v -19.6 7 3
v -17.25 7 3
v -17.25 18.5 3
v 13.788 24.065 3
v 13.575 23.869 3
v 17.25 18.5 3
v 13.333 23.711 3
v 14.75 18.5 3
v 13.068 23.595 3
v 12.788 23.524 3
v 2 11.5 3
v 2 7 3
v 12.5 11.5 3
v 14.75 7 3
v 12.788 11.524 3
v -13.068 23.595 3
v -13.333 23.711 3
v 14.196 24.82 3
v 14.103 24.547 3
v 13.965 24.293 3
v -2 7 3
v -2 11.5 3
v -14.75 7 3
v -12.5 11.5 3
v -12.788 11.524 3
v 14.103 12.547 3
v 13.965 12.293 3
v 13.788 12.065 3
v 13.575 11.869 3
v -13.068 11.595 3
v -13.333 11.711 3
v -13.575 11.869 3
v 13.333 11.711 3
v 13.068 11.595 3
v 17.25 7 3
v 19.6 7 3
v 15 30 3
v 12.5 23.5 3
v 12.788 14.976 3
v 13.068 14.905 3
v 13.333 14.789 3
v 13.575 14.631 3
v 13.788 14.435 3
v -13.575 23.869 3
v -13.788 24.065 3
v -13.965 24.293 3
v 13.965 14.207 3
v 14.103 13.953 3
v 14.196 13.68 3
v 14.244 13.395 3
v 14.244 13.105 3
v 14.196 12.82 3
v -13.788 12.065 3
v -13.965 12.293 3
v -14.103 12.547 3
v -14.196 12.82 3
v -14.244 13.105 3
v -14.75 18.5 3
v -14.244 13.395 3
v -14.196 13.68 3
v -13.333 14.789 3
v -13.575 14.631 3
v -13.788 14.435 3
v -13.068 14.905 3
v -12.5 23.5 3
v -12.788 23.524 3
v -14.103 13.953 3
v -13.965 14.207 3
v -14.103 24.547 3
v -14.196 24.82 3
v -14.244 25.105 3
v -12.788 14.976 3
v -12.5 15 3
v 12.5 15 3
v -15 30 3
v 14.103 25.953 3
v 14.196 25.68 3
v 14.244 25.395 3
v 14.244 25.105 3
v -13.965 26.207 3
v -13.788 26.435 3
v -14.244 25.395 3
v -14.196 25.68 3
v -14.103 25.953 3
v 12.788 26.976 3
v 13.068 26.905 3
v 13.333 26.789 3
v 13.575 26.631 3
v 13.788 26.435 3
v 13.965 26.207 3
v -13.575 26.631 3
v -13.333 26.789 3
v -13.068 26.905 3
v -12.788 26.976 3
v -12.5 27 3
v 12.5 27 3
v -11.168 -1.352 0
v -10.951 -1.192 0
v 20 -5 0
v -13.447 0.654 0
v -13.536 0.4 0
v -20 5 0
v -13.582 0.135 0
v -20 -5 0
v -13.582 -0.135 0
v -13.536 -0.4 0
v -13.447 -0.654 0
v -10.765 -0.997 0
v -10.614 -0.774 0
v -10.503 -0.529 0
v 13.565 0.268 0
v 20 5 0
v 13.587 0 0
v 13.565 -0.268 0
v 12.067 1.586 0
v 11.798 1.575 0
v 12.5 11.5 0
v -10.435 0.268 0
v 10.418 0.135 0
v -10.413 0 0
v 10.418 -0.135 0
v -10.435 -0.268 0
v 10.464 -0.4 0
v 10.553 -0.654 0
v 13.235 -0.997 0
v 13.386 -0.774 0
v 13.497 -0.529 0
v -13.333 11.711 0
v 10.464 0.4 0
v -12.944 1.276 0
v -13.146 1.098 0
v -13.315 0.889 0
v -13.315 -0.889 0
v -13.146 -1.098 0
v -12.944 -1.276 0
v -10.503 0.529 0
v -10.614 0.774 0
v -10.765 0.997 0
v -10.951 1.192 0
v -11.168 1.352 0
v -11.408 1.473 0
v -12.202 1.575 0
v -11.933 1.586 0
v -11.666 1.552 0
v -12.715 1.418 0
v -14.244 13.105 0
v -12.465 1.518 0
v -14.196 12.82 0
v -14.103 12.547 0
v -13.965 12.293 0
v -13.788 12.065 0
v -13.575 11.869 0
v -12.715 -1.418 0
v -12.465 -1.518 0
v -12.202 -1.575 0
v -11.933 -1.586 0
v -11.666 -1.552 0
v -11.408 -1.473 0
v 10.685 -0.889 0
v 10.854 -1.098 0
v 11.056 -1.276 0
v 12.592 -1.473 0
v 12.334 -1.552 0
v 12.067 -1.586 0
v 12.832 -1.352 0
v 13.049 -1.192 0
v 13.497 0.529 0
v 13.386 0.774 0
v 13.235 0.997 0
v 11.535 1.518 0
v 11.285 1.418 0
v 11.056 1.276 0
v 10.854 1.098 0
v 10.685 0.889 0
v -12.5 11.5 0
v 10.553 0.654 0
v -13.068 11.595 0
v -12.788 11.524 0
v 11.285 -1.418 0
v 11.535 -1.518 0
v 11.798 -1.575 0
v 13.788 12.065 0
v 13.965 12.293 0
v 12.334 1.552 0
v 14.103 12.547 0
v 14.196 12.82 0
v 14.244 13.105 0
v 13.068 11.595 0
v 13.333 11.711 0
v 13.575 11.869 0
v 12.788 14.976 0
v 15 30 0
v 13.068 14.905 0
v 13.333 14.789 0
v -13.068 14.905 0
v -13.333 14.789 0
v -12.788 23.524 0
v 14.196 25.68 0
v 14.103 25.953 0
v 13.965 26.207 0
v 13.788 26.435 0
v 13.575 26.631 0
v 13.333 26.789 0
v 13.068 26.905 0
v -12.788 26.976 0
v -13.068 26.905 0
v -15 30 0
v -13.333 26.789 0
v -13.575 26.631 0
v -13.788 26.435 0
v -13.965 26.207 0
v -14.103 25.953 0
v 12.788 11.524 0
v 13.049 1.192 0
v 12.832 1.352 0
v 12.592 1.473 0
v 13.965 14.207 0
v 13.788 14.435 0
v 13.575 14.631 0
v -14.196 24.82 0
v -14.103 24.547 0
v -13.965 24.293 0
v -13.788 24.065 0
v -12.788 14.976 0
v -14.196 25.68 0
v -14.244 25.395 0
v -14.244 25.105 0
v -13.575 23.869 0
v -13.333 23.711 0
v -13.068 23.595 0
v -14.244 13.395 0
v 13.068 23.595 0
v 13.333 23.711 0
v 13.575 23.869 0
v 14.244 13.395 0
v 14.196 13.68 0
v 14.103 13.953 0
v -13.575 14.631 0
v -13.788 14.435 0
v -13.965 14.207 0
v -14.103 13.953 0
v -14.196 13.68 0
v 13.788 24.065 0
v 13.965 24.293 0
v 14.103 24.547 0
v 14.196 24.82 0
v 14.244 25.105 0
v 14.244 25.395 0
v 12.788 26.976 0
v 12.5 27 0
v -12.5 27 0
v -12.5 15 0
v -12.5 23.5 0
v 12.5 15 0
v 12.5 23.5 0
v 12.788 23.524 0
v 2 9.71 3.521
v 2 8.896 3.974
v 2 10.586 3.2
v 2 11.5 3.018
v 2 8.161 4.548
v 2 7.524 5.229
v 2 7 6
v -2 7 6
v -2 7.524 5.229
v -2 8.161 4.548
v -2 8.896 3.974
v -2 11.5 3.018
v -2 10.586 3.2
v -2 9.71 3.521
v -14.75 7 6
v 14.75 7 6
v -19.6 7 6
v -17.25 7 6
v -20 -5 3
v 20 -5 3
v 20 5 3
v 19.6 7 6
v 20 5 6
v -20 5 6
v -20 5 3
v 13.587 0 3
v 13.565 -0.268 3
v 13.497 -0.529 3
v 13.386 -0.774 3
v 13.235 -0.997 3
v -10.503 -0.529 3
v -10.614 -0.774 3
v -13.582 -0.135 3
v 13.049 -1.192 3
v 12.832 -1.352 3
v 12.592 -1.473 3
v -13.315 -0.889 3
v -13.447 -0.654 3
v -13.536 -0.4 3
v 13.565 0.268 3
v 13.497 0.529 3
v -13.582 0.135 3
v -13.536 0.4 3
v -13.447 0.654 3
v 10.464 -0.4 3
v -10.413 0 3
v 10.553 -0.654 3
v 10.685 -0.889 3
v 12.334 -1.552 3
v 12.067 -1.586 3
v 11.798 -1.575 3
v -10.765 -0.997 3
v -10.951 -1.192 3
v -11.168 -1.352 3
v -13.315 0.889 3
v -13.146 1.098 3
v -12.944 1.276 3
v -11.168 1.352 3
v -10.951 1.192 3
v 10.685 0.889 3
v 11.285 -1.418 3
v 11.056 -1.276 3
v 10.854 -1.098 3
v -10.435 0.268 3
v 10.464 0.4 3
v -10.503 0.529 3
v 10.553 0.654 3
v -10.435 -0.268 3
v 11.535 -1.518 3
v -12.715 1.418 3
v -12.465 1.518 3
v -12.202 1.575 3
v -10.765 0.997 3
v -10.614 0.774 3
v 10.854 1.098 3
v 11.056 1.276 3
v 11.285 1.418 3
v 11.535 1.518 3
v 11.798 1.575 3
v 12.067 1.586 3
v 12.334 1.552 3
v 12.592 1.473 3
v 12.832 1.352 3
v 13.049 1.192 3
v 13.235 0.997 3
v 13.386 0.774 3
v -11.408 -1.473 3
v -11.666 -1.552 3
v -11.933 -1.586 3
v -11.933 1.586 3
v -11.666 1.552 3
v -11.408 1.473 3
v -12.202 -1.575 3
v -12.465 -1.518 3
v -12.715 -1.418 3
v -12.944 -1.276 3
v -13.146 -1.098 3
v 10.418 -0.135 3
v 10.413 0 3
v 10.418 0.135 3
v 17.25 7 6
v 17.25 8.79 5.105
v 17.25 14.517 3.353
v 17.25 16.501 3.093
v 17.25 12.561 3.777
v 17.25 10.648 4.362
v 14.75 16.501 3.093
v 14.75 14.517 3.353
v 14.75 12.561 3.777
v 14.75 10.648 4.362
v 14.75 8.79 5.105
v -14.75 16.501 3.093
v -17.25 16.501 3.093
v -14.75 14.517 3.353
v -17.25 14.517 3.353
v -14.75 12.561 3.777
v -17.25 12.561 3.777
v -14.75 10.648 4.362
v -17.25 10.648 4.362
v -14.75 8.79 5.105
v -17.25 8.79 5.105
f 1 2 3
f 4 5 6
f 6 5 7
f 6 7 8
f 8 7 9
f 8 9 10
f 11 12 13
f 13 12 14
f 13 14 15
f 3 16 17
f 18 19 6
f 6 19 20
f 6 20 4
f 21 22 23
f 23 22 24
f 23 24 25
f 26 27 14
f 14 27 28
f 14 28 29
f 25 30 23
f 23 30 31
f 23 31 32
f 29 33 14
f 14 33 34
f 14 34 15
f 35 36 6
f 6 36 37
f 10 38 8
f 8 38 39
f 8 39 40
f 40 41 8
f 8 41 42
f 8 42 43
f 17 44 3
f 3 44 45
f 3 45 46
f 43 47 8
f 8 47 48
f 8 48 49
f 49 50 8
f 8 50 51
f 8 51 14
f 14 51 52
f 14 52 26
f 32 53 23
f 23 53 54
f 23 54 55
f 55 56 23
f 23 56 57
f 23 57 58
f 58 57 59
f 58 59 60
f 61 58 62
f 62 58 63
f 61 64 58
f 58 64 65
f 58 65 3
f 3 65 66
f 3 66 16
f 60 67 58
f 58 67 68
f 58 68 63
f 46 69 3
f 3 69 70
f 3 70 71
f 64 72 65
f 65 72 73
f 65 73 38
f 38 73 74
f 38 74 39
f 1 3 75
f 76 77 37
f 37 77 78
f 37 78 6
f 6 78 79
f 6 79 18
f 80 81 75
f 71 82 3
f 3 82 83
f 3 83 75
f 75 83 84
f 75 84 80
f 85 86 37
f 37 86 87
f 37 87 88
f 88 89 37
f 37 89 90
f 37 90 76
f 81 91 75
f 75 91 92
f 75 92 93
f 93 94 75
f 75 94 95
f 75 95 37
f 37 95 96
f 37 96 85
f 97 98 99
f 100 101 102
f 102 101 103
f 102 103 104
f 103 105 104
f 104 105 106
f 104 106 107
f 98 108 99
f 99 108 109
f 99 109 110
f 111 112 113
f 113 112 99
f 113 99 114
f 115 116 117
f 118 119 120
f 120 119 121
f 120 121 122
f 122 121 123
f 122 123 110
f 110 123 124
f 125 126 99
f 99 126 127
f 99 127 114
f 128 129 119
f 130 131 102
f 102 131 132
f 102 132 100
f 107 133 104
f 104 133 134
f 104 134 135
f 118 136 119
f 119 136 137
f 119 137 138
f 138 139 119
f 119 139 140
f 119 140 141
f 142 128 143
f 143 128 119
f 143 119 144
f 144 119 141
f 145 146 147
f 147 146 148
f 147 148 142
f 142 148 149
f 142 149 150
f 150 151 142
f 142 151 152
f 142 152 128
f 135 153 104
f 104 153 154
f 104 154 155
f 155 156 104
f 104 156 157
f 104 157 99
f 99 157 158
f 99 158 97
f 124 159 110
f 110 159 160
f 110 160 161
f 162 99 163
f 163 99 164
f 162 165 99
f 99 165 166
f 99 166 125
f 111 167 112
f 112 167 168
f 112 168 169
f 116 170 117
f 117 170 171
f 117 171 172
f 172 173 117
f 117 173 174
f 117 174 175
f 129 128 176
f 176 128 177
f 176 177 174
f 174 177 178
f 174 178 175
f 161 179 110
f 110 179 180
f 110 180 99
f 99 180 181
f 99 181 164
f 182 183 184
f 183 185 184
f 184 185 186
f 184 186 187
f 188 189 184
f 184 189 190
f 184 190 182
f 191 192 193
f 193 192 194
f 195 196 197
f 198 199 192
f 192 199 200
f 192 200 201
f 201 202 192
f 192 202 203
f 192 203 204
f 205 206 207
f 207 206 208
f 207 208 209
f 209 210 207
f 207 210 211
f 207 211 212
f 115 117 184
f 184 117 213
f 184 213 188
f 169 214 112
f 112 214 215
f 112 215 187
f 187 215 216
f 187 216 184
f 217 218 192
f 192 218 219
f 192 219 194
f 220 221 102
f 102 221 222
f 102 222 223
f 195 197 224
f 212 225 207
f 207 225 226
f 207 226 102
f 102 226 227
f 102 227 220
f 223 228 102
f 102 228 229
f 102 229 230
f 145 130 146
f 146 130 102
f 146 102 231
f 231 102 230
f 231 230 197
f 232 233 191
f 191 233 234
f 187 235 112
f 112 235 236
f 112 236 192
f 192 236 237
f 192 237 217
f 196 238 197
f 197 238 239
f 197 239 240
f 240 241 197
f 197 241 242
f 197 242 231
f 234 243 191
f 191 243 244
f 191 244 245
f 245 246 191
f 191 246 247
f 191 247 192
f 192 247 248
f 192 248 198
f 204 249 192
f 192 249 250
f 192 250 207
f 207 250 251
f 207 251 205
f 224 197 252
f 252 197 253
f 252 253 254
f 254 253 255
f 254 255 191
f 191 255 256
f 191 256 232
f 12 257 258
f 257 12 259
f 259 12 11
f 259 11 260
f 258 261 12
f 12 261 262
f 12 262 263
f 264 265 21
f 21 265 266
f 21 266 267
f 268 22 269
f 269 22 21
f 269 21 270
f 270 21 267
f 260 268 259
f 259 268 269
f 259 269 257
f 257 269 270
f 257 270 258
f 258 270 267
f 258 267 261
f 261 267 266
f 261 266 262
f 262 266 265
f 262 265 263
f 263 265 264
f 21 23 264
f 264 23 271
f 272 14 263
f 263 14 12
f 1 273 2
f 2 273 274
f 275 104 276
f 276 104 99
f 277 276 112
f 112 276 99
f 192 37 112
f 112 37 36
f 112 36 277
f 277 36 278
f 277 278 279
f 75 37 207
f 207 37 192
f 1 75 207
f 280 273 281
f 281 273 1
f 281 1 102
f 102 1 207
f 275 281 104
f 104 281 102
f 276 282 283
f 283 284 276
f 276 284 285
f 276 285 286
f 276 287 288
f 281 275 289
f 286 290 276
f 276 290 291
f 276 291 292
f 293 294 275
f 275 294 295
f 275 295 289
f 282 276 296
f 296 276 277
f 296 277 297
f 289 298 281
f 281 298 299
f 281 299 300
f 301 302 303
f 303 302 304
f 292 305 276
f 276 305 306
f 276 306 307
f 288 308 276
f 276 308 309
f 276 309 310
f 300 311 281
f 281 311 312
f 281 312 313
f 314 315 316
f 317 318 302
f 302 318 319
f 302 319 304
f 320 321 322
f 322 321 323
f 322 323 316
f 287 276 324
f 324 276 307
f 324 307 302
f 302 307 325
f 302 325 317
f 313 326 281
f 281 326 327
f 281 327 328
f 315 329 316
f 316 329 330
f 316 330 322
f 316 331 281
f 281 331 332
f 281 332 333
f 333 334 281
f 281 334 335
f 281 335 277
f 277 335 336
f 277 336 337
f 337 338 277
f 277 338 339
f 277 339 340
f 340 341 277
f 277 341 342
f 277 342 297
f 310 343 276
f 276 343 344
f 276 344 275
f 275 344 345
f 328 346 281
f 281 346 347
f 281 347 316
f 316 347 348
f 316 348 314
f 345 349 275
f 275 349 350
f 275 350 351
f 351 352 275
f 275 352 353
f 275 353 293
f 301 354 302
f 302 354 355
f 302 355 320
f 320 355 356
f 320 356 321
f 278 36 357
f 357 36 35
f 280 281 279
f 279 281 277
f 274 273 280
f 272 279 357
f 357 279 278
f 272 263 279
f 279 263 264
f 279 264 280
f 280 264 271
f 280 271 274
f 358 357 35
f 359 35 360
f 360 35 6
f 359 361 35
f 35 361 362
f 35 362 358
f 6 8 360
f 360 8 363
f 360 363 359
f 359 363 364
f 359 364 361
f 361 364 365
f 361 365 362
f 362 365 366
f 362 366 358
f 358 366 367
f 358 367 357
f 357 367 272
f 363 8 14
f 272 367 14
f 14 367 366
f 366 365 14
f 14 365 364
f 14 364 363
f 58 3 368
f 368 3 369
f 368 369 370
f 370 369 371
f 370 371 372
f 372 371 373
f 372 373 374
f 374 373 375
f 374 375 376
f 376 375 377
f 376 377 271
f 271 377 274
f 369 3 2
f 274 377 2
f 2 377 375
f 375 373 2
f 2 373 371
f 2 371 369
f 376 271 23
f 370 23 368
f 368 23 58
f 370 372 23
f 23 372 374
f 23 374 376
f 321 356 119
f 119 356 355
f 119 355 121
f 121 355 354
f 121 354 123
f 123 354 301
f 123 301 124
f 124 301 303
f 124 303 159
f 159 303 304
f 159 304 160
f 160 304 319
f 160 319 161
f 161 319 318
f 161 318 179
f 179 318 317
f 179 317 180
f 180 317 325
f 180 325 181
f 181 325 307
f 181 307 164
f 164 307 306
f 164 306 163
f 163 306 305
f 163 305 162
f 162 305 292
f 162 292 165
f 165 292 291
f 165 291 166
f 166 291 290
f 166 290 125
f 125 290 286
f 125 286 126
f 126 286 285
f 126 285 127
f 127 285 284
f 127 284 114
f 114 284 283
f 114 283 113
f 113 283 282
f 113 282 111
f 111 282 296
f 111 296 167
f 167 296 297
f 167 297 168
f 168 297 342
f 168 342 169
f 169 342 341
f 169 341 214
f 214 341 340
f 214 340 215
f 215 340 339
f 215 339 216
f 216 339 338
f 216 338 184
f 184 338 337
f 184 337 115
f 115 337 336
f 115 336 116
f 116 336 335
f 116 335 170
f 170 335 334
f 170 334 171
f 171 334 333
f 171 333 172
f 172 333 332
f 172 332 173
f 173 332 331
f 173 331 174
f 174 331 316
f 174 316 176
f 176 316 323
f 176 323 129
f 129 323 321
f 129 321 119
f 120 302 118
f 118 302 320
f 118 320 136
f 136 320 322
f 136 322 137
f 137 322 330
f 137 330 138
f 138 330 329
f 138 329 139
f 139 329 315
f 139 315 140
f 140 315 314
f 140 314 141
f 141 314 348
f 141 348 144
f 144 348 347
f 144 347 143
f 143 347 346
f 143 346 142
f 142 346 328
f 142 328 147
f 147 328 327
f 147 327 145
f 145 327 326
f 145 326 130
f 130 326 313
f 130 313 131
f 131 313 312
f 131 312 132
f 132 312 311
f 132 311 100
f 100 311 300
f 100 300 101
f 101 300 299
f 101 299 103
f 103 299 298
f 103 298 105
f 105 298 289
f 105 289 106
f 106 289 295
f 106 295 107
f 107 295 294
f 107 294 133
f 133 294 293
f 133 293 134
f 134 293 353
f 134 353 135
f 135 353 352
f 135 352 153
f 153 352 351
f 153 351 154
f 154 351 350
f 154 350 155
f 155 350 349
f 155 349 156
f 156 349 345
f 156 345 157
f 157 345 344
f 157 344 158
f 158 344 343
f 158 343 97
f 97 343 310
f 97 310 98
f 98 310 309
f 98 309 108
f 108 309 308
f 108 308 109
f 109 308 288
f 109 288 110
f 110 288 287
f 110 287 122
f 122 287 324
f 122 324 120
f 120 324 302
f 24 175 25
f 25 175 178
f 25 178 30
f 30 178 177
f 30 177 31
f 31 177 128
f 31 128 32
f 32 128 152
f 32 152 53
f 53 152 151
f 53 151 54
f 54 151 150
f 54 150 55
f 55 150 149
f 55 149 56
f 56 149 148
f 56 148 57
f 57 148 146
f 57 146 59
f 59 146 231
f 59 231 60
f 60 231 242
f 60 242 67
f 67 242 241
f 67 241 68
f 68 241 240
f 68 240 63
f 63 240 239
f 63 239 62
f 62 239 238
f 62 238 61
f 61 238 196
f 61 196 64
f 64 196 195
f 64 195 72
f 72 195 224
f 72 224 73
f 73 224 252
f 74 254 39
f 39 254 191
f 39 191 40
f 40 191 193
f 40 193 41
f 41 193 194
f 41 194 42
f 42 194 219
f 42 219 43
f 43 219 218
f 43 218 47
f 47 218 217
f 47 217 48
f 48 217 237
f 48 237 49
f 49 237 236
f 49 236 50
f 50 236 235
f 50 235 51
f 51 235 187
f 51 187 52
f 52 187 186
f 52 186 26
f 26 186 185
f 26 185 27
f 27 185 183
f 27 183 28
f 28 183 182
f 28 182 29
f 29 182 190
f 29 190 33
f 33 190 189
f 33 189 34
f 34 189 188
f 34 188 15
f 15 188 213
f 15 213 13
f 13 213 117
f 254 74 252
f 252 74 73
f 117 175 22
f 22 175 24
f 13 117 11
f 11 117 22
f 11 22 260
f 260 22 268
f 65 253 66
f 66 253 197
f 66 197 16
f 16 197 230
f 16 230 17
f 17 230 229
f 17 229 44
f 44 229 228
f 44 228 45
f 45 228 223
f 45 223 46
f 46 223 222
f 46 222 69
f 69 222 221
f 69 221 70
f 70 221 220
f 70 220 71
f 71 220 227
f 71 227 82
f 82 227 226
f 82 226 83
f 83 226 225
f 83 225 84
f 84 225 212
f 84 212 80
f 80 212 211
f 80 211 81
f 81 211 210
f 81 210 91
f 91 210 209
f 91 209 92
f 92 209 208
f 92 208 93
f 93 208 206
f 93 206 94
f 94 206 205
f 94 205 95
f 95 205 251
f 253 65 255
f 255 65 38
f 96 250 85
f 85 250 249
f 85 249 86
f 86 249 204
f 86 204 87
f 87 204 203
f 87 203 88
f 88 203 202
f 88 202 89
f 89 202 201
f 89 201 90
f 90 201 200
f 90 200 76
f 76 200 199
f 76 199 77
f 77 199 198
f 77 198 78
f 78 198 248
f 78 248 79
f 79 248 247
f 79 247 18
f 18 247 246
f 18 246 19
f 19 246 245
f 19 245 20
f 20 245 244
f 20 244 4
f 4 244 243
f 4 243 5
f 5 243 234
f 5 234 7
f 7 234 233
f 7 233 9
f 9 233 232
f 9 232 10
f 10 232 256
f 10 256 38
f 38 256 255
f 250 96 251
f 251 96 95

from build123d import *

# Parameters (mm, degrees)
SALIENTE_EXTRUIR1_DEPTH    = 3
SALIENTE_EXTRUIR2_DEPTH    = 3
NERVIO6_START              = -1.25
NERVIO6_DEPTH              = 2.5
NERVIO7_START              = -2
NERVIO7_DEPTH              = 4
CROQUIS3_R                 = 1.5875
CORTAR_EXTRUIR1_DEPTH      = 12
CORTAR_EXTRUIR2_DEPTH      = 10
CORTAR_EXTRUIR2_DEPTH_BACK = 12


# Read off the part's stored shape, not the designer's step: Nervio6, Nervio7
with BuildPart() as part:
    # Croquis1 → Saliente-Extruir1 (new body)
    with BuildSketch(Plane.XY):
        Polygon((-20, 5), (-20, -5), (20, -5), (20, 5), (0, 5), align=None)
        Polygon((-15, 30), (-20, 5), (0, 5), (0, 30), align=None)
        Polygon((0, 5), (20, 5), (15, 30), (0, 30), align=None)
    extrude(amount=SALIENTE_EXTRUIR1_DEPTH)

    # Croquis2 → Saliente-Extruir2 (add)
    with BuildSketch(Plane.XY.offset(3)):
        Polygon((-19.6, 7), (-20, 5), (20, 5), (19.6, 7), align=None)
    extrude(amount=SALIENTE_EXTRUIR2_DEPTH)

    # Nervio6 outline → Nervio6 (add)
    with BuildSketch(Plane(origin=(16, 0, 0), x_dir=(0, 0, -1), z_dir=(1, 0, 0)).offset(NERVIO6_START)):
        with BuildLine():
            Line((-3, 7), (-3, 18.5))
            ThreePointArc((-3, 18.5), (-3.776888017, 12.561362091), (-6, 7))
            Line((-6, 7), (-3, 7))
        make_face()
    nervio6 = extrude(amount=NERVIO6_DEPTH)

    # Simetría2: Nervio6 across plane
    add(nervio6.mirror(Plane(origin=(0, 0, 0), x_dir=(0, 0, 1), z_dir=(1, 0, 0))))

    # Nervio7 outline → Nervio7 (add)
    with BuildSketch(Plane(origin=(0, 0, 0), x_dir=(0, 0, -1), z_dir=(1, 0, 0)).offset(NERVIO7_START)):
        with BuildLine():
            Line((-3, 7), (-3, 11.670256173))
            ThreePointArc((-3, 11.670256173), (-3.927457039, 8.967347644), (-6, 7))
            Line((-6, 7), (-3, 7))
        make_face()
    extrude(amount=NERVIO7_DEPTH)

    # Croquis3 → Cortar-Extruir1 (cut)
    with BuildSketch(Plane.XY.offset(3)):
        with Locations((-12, 0)):
            Circle(CROQUIS3_R)
        with Locations((12, 0)):
            Circle(CROQUIS3_R)
    extrude(amount=-CORTAR_EXTRUIR1_DEPTH, mode=Mode.SUBTRACT)

    # Croquis4 → Cortar-Extruir2 (cut, two sides: drawn at the far end of the back side and taken through both)
    with BuildSketch(Plane.XY.offset(3).offset(-CORTAR_EXTRUIR2_DEPTH_BACK)):
        with BuildLine():
            Line((-12.5, 27), (12.5, 27))
            ThreePointArc((12.5, 27), (14.25, 25.25), (12.5, 23.5))
            Line((12.5, 23.5), (-12.5, 23.5))
            ThreePointArc((-12.5, 23.5), (-14.25, 25.25), (-12.5, 27))
        make_face()
        with BuildLine():
            Line((-12.5, 11.5), (12.5, 11.5))
            ThreePointArc((12.5, 11.5), (14.25, 13.25), (12.5, 15))
            Line((12.5, 15), (-12.5, 15))
            ThreePointArc((-12.5, 15), (-14.25, 13.25), (-12.5, 11.5))
        make_face()
    extrude(amount=CORTAR_EXTRUIR2_DEPTH + CORTAR_EXTRUIR2_DEPTH_BACK, mode=Mode.SUBTRACT)


solid = part.part
